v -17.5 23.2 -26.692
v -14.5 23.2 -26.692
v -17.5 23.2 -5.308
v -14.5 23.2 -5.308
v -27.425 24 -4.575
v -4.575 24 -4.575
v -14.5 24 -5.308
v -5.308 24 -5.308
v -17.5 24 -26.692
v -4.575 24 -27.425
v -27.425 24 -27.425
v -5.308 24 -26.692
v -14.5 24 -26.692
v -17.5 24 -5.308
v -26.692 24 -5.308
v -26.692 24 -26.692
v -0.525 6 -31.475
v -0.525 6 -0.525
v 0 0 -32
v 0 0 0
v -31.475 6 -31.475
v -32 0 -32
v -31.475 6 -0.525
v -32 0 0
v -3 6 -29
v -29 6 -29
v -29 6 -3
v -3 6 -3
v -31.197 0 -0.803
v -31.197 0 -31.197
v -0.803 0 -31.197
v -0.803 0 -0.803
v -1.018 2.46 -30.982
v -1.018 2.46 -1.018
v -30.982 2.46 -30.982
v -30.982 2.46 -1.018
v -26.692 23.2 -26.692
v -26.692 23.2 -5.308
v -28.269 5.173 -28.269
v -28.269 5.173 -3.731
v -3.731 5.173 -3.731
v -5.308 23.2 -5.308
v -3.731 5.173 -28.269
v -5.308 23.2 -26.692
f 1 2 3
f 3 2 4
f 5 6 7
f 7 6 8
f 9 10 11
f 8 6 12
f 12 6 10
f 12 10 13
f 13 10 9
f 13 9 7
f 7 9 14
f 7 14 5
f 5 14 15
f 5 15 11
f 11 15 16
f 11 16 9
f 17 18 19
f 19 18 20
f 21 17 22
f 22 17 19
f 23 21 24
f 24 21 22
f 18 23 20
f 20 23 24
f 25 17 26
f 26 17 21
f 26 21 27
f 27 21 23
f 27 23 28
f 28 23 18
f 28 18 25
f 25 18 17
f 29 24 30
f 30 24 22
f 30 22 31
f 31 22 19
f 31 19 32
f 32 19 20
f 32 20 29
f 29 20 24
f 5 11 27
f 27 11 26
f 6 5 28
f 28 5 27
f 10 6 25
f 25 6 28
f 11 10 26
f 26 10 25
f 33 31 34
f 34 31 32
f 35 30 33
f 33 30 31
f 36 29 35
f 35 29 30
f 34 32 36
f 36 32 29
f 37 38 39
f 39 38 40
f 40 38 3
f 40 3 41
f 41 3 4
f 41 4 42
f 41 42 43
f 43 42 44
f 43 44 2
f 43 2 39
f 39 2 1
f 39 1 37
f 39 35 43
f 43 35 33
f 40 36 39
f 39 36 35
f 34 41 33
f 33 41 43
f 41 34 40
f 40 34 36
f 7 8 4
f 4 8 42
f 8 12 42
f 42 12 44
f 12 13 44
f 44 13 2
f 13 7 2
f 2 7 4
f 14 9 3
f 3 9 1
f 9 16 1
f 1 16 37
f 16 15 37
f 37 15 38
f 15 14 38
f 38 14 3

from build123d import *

# Parameters (mm, degrees)
SKETCH1_W           = 32
SKETCH1_H           = 32
BOSS_EXTRUDE1_DEPTH = 6
BOSS_EXTRUDE1_TAPER = 5
SKETCH2_W           = 26
SKETCH2_H           = 26
BOSS_EXTRUDE2_DEPTH = 18
BOSS_EXTRUDE2_TAPER = 5
SHELL1_T            = -0.8
CHAMFER1_SIZE       = 2.5
CHAMFER1_SIZE_2     = 2.750157169
SKETCH3_W           = 9.192139117
SKETCH3_H           = 21.384278234
CUT_EXTRUDE1_DEPTH  = 51.855088412


with BuildPart() as part:
    # Sketch1 → Boss-Extrude1 (new body)
    with BuildSketch(Plane(origin=(0, 0, 0), x_dir=(1, 0, 0), z_dir=(0, 1, 0))):
        with Locations((-16, 16)):
            Rectangle(SKETCH1_W, SKETCH1_H)
    extrude(amount=BOSS_EXTRUDE1_DEPTH, taper=BOSS_EXTRUDE1_TAPER)

    # Sketch2 → Boss-Extrude2 (add)
    with BuildSketch(Plane(origin=(0, 6, 0), x_dir=(1, 0, 0), z_dir=(0, 1, 0))):
        with Locations((-16, 16)):
            Rectangle(SKETCH2_W, SKETCH2_H)
    extrude(amount=BOSS_EXTRUDE2_DEPTH, taper=BOSS_EXTRUDE2_TAPER)

    # Shell1
    shell1_openings = [part.faces().sort_by_distance(p)[0] for p in [
        (-16, 0, -16),
    ]]
    offset(amount=SHELL1_T, openings=shell1_openings, kind=Kind.INTERSECTION)

    # Chamfer1
    # the kernel refuses this chamfer: 2.750157169, 2.5 mm, written as the material it adds along each edge
    with BuildSketch(Plane(origin=(5.830274952, 5.2, -1.25799692), x_dir=(0, 0.030161850139926293, -0.9995450278982617), z_dir=(-1, 0, 0))) as chamfer1_piece_1_section:
        Polygon((CHAMFER1_SIZE * 0.999545027898, CHAMFER1_SIZE * 0.0301618501399), (-CHAMFER1_SIZE_2 * 0.117163164513, CHAMFER1_SIZE_2 * 0.993112678869), (0, 0), align=None)
    chamfer1_piece_1 = extrude(amount=43.660549905, mode=Mode.PRIVATE)
    chamfer1_piece_1 = split(chamfer1_piece_1, bisect_by=Plane(origin=(-1.2737044, 5.379537315, -3.779154262), z_dir=(-0.9961946980917455, -0.08715574274765792, 0)), keep=Keep.TOP, mode=Mode.PRIVATE)
    chamfer1_piece_1 = split(chamfer1_piece_1, bisect_by=Plane(origin=(-3.729971497, 5.164641789, -3.779154262), z_dir=(0.9961946980917455, 0.08715574274765821, 0)), keep=Keep.TOP, mode=Mode.PRIVATE)
    chamfer1_piece_1 = split(chamfer1_piece_1, bisect_by=Plane(origin=(-2.501837948, 5.275543614, -3.739674149), z_dir=(0, -0.08715574274765829, -0.9961946980917455)), keep=Keep.TOP, mode=Mode.PRIVATE)
    add(chamfer1_piece_1)
    with BuildSketch(Plane(origin=(5.830274952, 5.2, -1.25799692), x_dir=(0, 0.030161850139926293, -0.9995450278982617), z_dir=(-1, 0, 0))) as chamfer1_piece_2_section:
        Polygon((CHAMFER1_SIZE * 0.999545027898, CHAMFER1_SIZE * 0.0301618501399), (-CHAMFER1_SIZE_2 * 0.117163164513, CHAMFER1_SIZE_2 * 0.993112678869), (0, 0), align=None)
    chamfer1_piece_2 = extrude(amount=43.660549905, mode=Mode.PRIVATE)
    chamfer1_piece_2 = split(chamfer1_piece_2, bisect_by=Plane(origin=(-1.187972058, 4.399612159, -1.99521412), z_dir=(-0.9961946980917455, -0.08715574274765792, 0)), keep=Keep.TOP, mode=Mode.PRIVATE)
    chamfer1_piece_2 = split(chamfer1_piece_2, bisect_by=Plane(origin=(-3.644239154, 4.184716633, -1.99521412), z_dir=(0.9961946980917455, 0.08715574274765821, 0)), keep=Keep.TOP, mode=Mode.PRIVATE)
    chamfer1_piece_2 = split(chamfer1_piece_2, bisect_by=Plane(origin=(-2.416105606, 4.148173113, -3.641042011), z_dir=(0, 0.08715574274765829, 0.9961946980917455)), keep=Keep.TOP, mode=Mode.PRIVATE)
    add(chamfer1_piece_2)
    with BuildSketch(Plane(origin=(5.830274952, 5.2, -1.25799692), x_dir=(0, 0.030161850139926293, -0.9995450278982617), z_dir=(-1, 0, 0))) as chamfer1_piece_3_section:
        Polygon((CHAMFER1_SIZE * 0.999545027898, CHAMFER1_SIZE * 0.0301618501399), (-CHAMFER1_SIZE_2 * 0.117163164513, CHAMFER1_SIZE_2 * 0.993112678869), (0, 0), align=None)
    chamfer1_piece_3 = extrude(amount=43.660549905, mode=Mode.PRIVATE)
    chamfer1_piece_3 = split(chamfer1_piece_3, bisect_by=Plane(origin=(-3.747130429, 5.360769289, -1.993289961), z_dir=(-0.9961946980917455, -0.08715574274765821, 0)), keep=Keep.TOP, mode=Mode.PRIVATE)
    chamfer1_piece_3 = split(chamfer1_piece_3, bisect_by=Plane(origin=(-16, 4.144649452, -3.64073373), z_dir=(0, 0.08715574274765829, 0.9961946980917455)), keep=Keep.TOP, mode=Mode.PRIVATE)
    chamfer1_piece_3 = split(chamfer1_piece_3, bisect_by=Plane(origin=(-28.252869571, 5.360769289, -1.993289961), z_dir=(0.9961946980917455, -0.08715574274765829, 0)), keep=Keep.TOP, mode=Mode.PRIVATE)
    add(chamfer1_piece_3)
    with BuildSketch(Plane(origin=(5.830274952, 5.2, -1.25799692), x_dir=(0, 0.030161850139926293, -0.9995450278982617), z_dir=(-1, 0, 0))) as chamfer1_piece_4_section:
        Polygon((CHAMFER1_SIZE * 0.999545027898, CHAMFER1_SIZE * 0.0301618501399), (-CHAMFER1_SIZE_2 * 0.117163164513, CHAMFER1_SIZE_2 * 0.993112678869), (0, 0), align=None)
    chamfer1_piece_4 = extrude(amount=43.660549905, mode=Mode.PRIVATE)
    chamfer1_piece_4 = split(chamfer1_piece_4, bisect_by=Plane(origin=(-29.498162052, 5.275543614, -3.739674149), z_dir=(0, -0.08715574274765829, -0.9961946980917455)), keep=Keep.TOP, mode=Mode.PRIVATE)
    chamfer1_piece_4 = split(chamfer1_piece_4, bisect_by=Plane(origin=(-28.270028503, 5.164641789, -3.779154262), z_dir=(-0.9961946980917455, 0.08715574274765829, 0)), keep=Keep.TOP, mode=Mode.PRIVATE)
    chamfer1_piece_4 = split(chamfer1_piece_4, bisect_by=Plane(origin=(-30.7262956, 5.379537315, -3.779154262), z_dir=(0.9961946980917455, -0.08715574274765851, 0)), keep=Keep.TOP, mode=Mode.PRIVATE)
    add(chamfer1_piece_4)
    with BuildSketch(Plane(origin=(5.830274952, 5.2, -1.25799692), x_dir=(0, 0.030161850139926293, -0.9995450278982617), z_dir=(-1, 0, 0))) as chamfer1_piece_5_section:
        Polygon((CHAMFER1_SIZE * 0.999545027898, CHAMFER1_SIZE * 0.0301618501399), (-CHAMFER1_SIZE_2 * 0.117163164513, CHAMFER1_SIZE_2 * 0.993112678869), (0, 0), align=None)
    chamfer1_piece_5 = extrude(amount=43.660549905, mode=Mode.PRIVATE)
    chamfer1_piece_5 = split(chamfer1_piece_5, bisect_by=Plane(origin=(-29.583894394, 4.148173113, -3.641042011), z_dir=(0, 0.08715574274765829, 0.9961946980917455)), keep=Keep.TOP, mode=Mode.PRIVATE)
    chamfer1_piece_5 = split(chamfer1_piece_5, bisect_by=Plane(origin=(-28.355760846, 4.184716633, -1.99521412), z_dir=(-0.9961946980917455, 0.08715574274765829, 0)), keep=Keep.TOP, mode=Mode.PRIVATE)
    chamfer1_piece_5 = split(chamfer1_piece_5, bisect_by=Plane(origin=(-30.812027942, 4.399612159, -1.99521412), z_dir=(0.9961946980917455, -0.08715574274765851, 0)), keep=Keep.TOP, mode=Mode.PRIVATE)
    add(chamfer1_piece_5)
    with BuildSketch(Plane(origin=(-30.74200308, 5.2, 5.830274952), x_dir=(0.9995450278982617, 0.030161850139926356, 0), z_dir=(0, 0, -1))) as chamfer1_piece_6_section:
        Polygon((CHAMFER1_SIZE * 0.999545027898, CHAMFER1_SIZE * 0.0301618501399), (-CHAMFER1_SIZE_2 * 0.117163164513, CHAMFER1_SIZE_2 * 0.993112678869), (0, 0), align=None)
    chamfer1_piece_6 = extrude(amount=43.660549905, mode=Mode.PRIVATE)
    chamfer1_piece_6 = split(chamfer1_piece_6, bisect_by=Plane(origin=(-28.220845738, 5.164641789, -3.729971497), z_dir=(0, 0.08715574274765829, 0.9961946980917455)), keep=Keep.TOP, mode=Mode.PRIVATE)
    chamfer1_piece_6 = split(chamfer1_piece_6, bisect_by=Plane(origin=(-28.260325851, 5.275543614, -2.501837948), z_dir=(0.9961946980917455, -0.08715574274765829, 0)), keep=Keep.TOP, mode=Mode.PRIVATE)
    chamfer1_piece_6 = split(chamfer1_piece_6, bisect_by=Plane(origin=(-28.220845738, 5.379537315, -1.2737044), z_dir=(0, -0.08715574274765792, -0.9961946980917455)), keep=Keep.TOP, mode=Mode.PRIVATE)
    add(chamfer1_piece_6)
    with BuildSketch(Plane(origin=(-30.74200308, 5.2, 5.830274952), x_dir=(0.9995450278982617, 0.030161850139926356, 0), z_dir=(0, 0, -1))) as chamfer1_piece_7_section:
        Polygon((CHAMFER1_SIZE * 0.999545027898, CHAMFER1_SIZE * 0.0301618501399), (-CHAMFER1_SIZE_2 * 0.117163164513, CHAMFER1_SIZE_2 * 0.993112678869), (0, 0), align=None)
    chamfer1_piece_7 = extrude(amount=43.660549905, mode=Mode.PRIVATE)
    chamfer1_piece_7 = split(chamfer1_piece_7, bisect_by=Plane(origin=(-30.00478588, 4.184716633, -3.644239154), z_dir=(0, 0.08715574274765829, 0.9961946980917455)), keep=Keep.TOP, mode=Mode.PRIVATE)
    chamfer1_piece_7 = split(chamfer1_piece_7, bisect_by=Plane(origin=(-28.358957989, 4.148173113, -2.416105606), z_dir=(-0.9961946980917455, 0.08715574274765829, 0)), keep=Keep.TOP, mode=Mode.PRIVATE)
    chamfer1_piece_7 = split(chamfer1_piece_7, bisect_by=Plane(origin=(-30.00478588, 4.399612159, -1.187972058), z_dir=(0, -0.08715574274765792, -0.9961946980917455)), keep=Keep.TOP, mode=Mode.PRIVATE)
    add(chamfer1_piece_7)
    with BuildSketch(Plane(origin=(-30.74200308, 5.2, 5.830274952), x_dir=(0.9995450278982617, 0.030161850139926356, 0), z_dir=(0, 0, -1))) as chamfer1_piece_8_section:
        Polygon((CHAMFER1_SIZE * 0.999545027898, CHAMFER1_SIZE * 0.0301618501399), (-CHAMFER1_SIZE_2 * 0.117163164513, CHAMFER1_SIZE_2 * 0.993112678869), (0, 0), align=None)
    chamfer1_piece_8 = extrude(amount=43.660549905, mode=Mode.PRIVATE)
    chamfer1_piece_8 = split(chamfer1_piece_8, bisect_by=Plane(origin=(-30.006710039, 5.360769289, -28.252869571), z_dir=(0, -0.08715574274765829, 0.9961946980917455)), keep=Keep.TOP, mode=Mode.PRIVATE)
    chamfer1_piece_8 = split(chamfer1_piece_8, bisect_by=Plane(origin=(-30.006710039, 5.360769289, -3.747130429), z_dir=(0, -0.08715574274765829, -0.9961946980917455)), keep=Keep.TOP, mode=Mode.PRIVATE)
    chamfer1_piece_8 = split(chamfer1_piece_8, bisect_by=Plane(origin=(-28.35926627, 4.144649452, -16), z_dir=(-0.9961946980917455, 0.08715574274765829, 0)), keep=Keep.TOP, mode=Mode.PRIVATE)
    add(chamfer1_piece_8)
    with BuildSketch(Plane(origin=(-30.74200308, 5.2, 5.830274952), x_dir=(0.9995450278982617, 0.030161850139926356, 0), z_dir=(0, 0, -1))) as chamfer1_piece_9_section:
        Polygon((CHAMFER1_SIZE * 0.999545027898, CHAMFER1_SIZE * 0.0301618501399), (-CHAMFER1_SIZE_2 * 0.117163164513, CHAMFER1_SIZE_2 * 0.993112678869), (0, 0), align=None)
    chamfer1_piece_9 = extrude(amount=43.660549905, mode=Mode.PRIVATE)
    chamfer1_piece_9 = split(chamfer1_piece_9, bisect_by=Plane(origin=(-28.220845738, 5.379537315, -30.7262956), z_dir=(0, -0.08715574274765836, 0.9961946980917455)), keep=Keep.TOP, mode=Mode.PRIVATE)
    chamfer1_piece_9 = split(chamfer1_piece_9, bisect_by=Plane(origin=(-28.220845738, 5.164641789, -28.270028503), z_dir=(0, 0.08715574274765829, -0.9961946980917455)), keep=Keep.TOP, mode=Mode.PRIVATE)
    chamfer1_piece_9 = split(chamfer1_piece_9, bisect_by=Plane(origin=(-28.260325851, 5.275543614, -29.498162052), z_dir=(0.9961946980917455, -0.08715574274765829, 0)), keep=Keep.TOP, mode=Mode.PRIVATE)
    add(chamfer1_piece_9)
    with BuildSketch(Plane(origin=(-30.74200308, 5.2, 5.830274952), x_dir=(0.9995450278982617, 0.030161850139926356, 0), z_dir=(0, 0, -1))) as chamfer1_piece_10_section:
        Polygon((CHAMFER1_SIZE * 0.999545027898, CHAMFER1_SIZE * 0.0301618501399), (-CHAMFER1_SIZE_2 * 0.117163164513, CHAMFER1_SIZE_2 * 0.993112678869), (0, 0), align=None)
    chamfer1_piece_10 = extrude(amount=43.660549905, mode=Mode.PRIVATE)
    chamfer1_piece_10 = split(chamfer1_piece_10, bisect_by=Plane(origin=(-30.00478588, 4.399612159, -30.812027942), z_dir=(0, -0.08715574274765836, 0.9961946980917455)), keep=Keep.TOP, mode=Mode.PRIVATE)
    chamfer1_piece_10 = split(chamfer1_piece_10, bisect_by=Plane(origin=(-30.00478588, 4.184716633, -28.355760846), z_dir=(0, 0.08715574274765829, -0.9961946980917455)), keep=Keep.TOP, mode=Mode.PRIVATE)
    chamfer1_piece_10 = split(chamfer1_piece_10, bisect_by=Plane(origin=(-28.358957989, 4.148173113, -29.583894394), z_dir=(-0.9961946980917455, 0.08715574274765829, 0)), keep=Keep.TOP, mode=Mode.PRIVATE)
    add(chamfer1_piece_10)
    with BuildSketch(Plane(origin=(5.830274952, 5.2, -30.74200308), x_dir=(0, -0.9937112432628153, -0.11197305485280758), z_dir=(-1, 0, 0))) as chamfer1_piece_11_section:
        Polygon((CHAMFER1_SIZE_2 * 0.99968896676, CHAMFER1_SIZE_2 * 0.0249393220908), (-CHAMFER1_SIZE * 0.111973054853, CHAMFER1_SIZE * 0.993711243263), (0, 0), align=None)
    chamfer1_piece_11 = extrude(amount=43.660549905, mode=Mode.PRIVATE)
    chamfer1_piece_11 = split(chamfer1_piece_11, bisect_by=Plane(origin=(-1.187972058, 4.399612159, -30.00478588), z_dir=(-0.9961946980917455, -0.08715574274765792, 0)), keep=Keep.TOP, mode=Mode.PRIVATE)
    chamfer1_piece_11 = split(chamfer1_piece_11, bisect_by=Plane(origin=(-2.416105606, 4.148173113, -28.358957989), z_dir=(0, 0.08715574274765829, -0.9961946980917455)), keep=Keep.TOP, mode=Mode.PRIVATE)
    chamfer1_piece_11 = split(chamfer1_piece_11, bisect_by=Plane(origin=(-3.644239154, 4.184716633, -30.00478588), z_dir=(0.9961946980917455, 0.08715574274765821, 0)), keep=Keep.TOP, mode=Mode.PRIVATE)
    add(chamfer1_piece_11)
    with BuildSketch(Plane(origin=(5.830274952, 5.2, -30.74200308), x_dir=(0, -0.9937112432628153, -0.11197305485280758), z_dir=(-1, 0, 0))) as chamfer1_piece_12_section:
        Polygon((CHAMFER1_SIZE_2 * 0.99968896676, CHAMFER1_SIZE_2 * 0.0249393220908), (-CHAMFER1_SIZE * 0.111973054853, CHAMFER1_SIZE * 0.993711243263), (0, 0), align=None)
    chamfer1_piece_12 = extrude(amount=43.660549905, mode=Mode.PRIVATE)
    chamfer1_piece_12 = split(chamfer1_piece_12, bisect_by=Plane(origin=(-1.2737044, 5.379537315, -28.220845738), z_dir=(-0.9961946980917455, -0.08715574274765792, 0)), keep=Keep.TOP, mode=Mode.PRIVATE)
    chamfer1_piece_12 = split(chamfer1_piece_12, bisect_by=Plane(origin=(-2.501837948, 5.275543614, -28.260325851), z_dir=(0, -0.08715574274765829, 0.9961946980917455)), keep=Keep.TOP, mode=Mode.PRIVATE)
    chamfer1_piece_12 = split(chamfer1_piece_12, bisect_by=Plane(origin=(-3.729971497, 5.164641789, -28.220845738), z_dir=(0.9961946980917455, 0.08715574274765821, 0)), keep=Keep.TOP, mode=Mode.PRIVATE)
    add(chamfer1_piece_12)
    with BuildSketch(Plane(origin=(5.830274952, 5.2, -30.74200308), x_dir=(0, -0.9937112432628153, -0.11197305485280758), z_dir=(-1, 0, 0))) as chamfer1_piece_13_section:
        Polygon((CHAMFER1_SIZE_2 * 0.99968896676, CHAMFER1_SIZE_2 * 0.0249393220908), (-CHAMFER1_SIZE * 0.111973054853, CHAMFER1_SIZE * 0.993711243263), (0, 0), align=None)
    chamfer1_piece_13 = extrude(amount=43.660549905, mode=Mode.PRIVATE)
    chamfer1_piece_13 = split(chamfer1_piece_13, bisect_by=Plane(origin=(-16, 4.144649452, -28.35926627), z_dir=(0, 0.08715574274765829, -0.9961946980917455)), keep=Keep.TOP, mode=Mode.PRIVATE)
    chamfer1_piece_13 = split(chamfer1_piece_13, bisect_by=Plane(origin=(-3.747130429, 5.360769289, -30.006710039), z_dir=(-0.9961946980917455, -0.08715574274765821, 0)), keep=Keep.TOP, mode=Mode.PRIVATE)
    chamfer1_piece_13 = split(chamfer1_piece_13, bisect_by=Plane(origin=(-28.252869571, 5.360769289, -30.006710039), z_dir=(0.9961946980917455, -0.08715574274765829, 0)), keep=Keep.TOP, mode=Mode.PRIVATE)
    add(chamfer1_piece_13)
    with BuildSketch(Plane(origin=(5.830274952, 5.2, -30.74200308), x_dir=(0, -0.9937112432628153, -0.11197305485280758), z_dir=(-1, 0, 0))) as chamfer1_piece_14_section:
        Polygon((CHAMFER1_SIZE_2 * 0.99968896676, CHAMFER1_SIZE_2 * 0.0249393220908), (-CHAMFER1_SIZE * 0.111973054853, CHAMFER1_SIZE * 0.993711243263), (0, 0), align=None)
    chamfer1_piece_14 = extrude(amount=43.660549905, mode=Mode.PRIVATE)
    chamfer1_piece_14 = split(chamfer1_piece_14, bisect_by=Plane(origin=(-30.812027942, 4.399612159, -30.00478588), z_dir=(0.9961946980917455, -0.08715574274765851, 0)), keep=Keep.TOP, mode=Mode.PRIVATE)
    chamfer1_piece_14 = split(chamfer1_piece_14, bisect_by=Plane(origin=(-29.583894394, 4.148173113, -28.358957989), z_dir=(0, 0.08715574274765829, -0.9961946980917455)), keep=Keep.TOP, mode=Mode.PRIVATE)
    chamfer1_piece_14 = split(chamfer1_piece_14, bisect_by=Plane(origin=(-28.355760846, 4.184716633, -30.00478588), z_dir=(-0.9961946980917455, 0.08715574274765829, 0)), keep=Keep.TOP, mode=Mode.PRIVATE)
    add(chamfer1_piece_14)
    with BuildSketch(Plane(origin=(5.830274952, 5.2, -30.74200308), x_dir=(0, -0.9937112432628153, -0.11197305485280758), z_dir=(-1, 0, 0))) as chamfer1_piece_15_section:
        Polygon((CHAMFER1_SIZE_2 * 0.99968896676, CHAMFER1_SIZE_2 * 0.0249393220908), (-CHAMFER1_SIZE * 0.111973054853, CHAMFER1_SIZE * 0.993711243263), (0, 0), align=None)
    chamfer1_piece_15 = extrude(amount=43.660549905, mode=Mode.PRIVATE)
    chamfer1_piece_15 = split(chamfer1_piece_15, bisect_by=Plane(origin=(-30.7262956, 5.379537315, -28.220845738), z_dir=(0.9961946980917455, -0.08715574274765851, 0)), keep=Keep.TOP, mode=Mode.PRIVATE)
    chamfer1_piece_15 = split(chamfer1_piece_15, bisect_by=Plane(origin=(-29.498162052, 5.275543614, -28.260325851), z_dir=(0, -0.08715574274765829, 0.9961946980917455)), keep=Keep.TOP, mode=Mode.PRIVATE)
    chamfer1_piece_15 = split(chamfer1_piece_15, bisect_by=Plane(origin=(-28.270028503, 5.164641789, -28.220845738), z_dir=(-0.9961946980917455, 0.08715574274765829, 0)), keep=Keep.TOP, mode=Mode.PRIVATE)
    add(chamfer1_piece_15)
    with BuildSketch(Plane(origin=(-1.25799692, 5.2, 5.830274952), x_dir=(0.11197305485280797, -0.9937112432628151, 0), z_dir=(0, 0, -1))) as chamfer1_piece_16_section:
        Polygon((CHAMFER1_SIZE_2 * 0.99968896676, CHAMFER1_SIZE_2 * 0.0249393220908), (-CHAMFER1_SIZE * 0.111973054853, CHAMFER1_SIZE * 0.993711243263), (0, 0), align=None)
    chamfer1_piece_16 = extrude(amount=43.660549905, mode=Mode.PRIVATE)
    chamfer1_piece_16 = split(chamfer1_piece_16, bisect_by=Plane(origin=(-1.99521412, 4.399612159, -1.187972058), z_dir=(0, -0.08715574274765792, -0.9961946980917455)), keep=Keep.TOP, mode=Mode.PRIVATE)
    chamfer1_piece_16 = split(chamfer1_piece_16, bisect_by=Plane(origin=(-3.641042011, 4.148173113, -2.416105606), z_dir=(0.9961946980917455, 0.08715574274765821, 0)), keep=Keep.TOP, mode=Mode.PRIVATE)
    chamfer1_piece_16 = split(chamfer1_piece_16, bisect_by=Plane(origin=(-1.99521412, 4.184716633, -3.644239154), z_dir=(0, 0.08715574274765829, 0.9961946980917455)), keep=Keep.TOP, mode=Mode.PRIVATE)
    add(chamfer1_piece_16)
    with BuildSketch(Plane(origin=(-1.25799692, 5.2, 5.830274952), x_dir=(0.11197305485280797, -0.9937112432628151, 0), z_dir=(0, 0, -1))) as chamfer1_piece_17_section:
        Polygon((CHAMFER1_SIZE_2 * 0.99968896676, CHAMFER1_SIZE_2 * 0.0249393220908), (-CHAMFER1_SIZE * 0.111973054853, CHAMFER1_SIZE * 0.993711243263), (0, 0), align=None)
    chamfer1_piece_17 = extrude(amount=43.660549905, mode=Mode.PRIVATE)
    chamfer1_piece_17 = split(chamfer1_piece_17, bisect_by=Plane(origin=(-3.779154262, 5.379537315, -1.2737044), z_dir=(0, -0.08715574274765792, -0.9961946980917455)), keep=Keep.TOP, mode=Mode.PRIVATE)
    chamfer1_piece_17 = split(chamfer1_piece_17, bisect_by=Plane(origin=(-3.739674149, 5.275543614, -2.501837948), z_dir=(-0.9961946980917455, -0.08715574274765821, 0)), keep=Keep.TOP, mode=Mode.PRIVATE)
    chamfer1_piece_17 = split(chamfer1_piece_17, bisect_by=Plane(origin=(-3.779154262, 5.164641789, -3.729971497), z_dir=(0, 0.08715574274765829, 0.9961946980917455)), keep=Keep.TOP, mode=Mode.PRIVATE)
    add(chamfer1_piece_17)
    with BuildSketch(Plane(origin=(-1.25799692, 5.2, 5.830274952), x_dir=(0.11197305485280797, -0.9937112432628151, 0), z_dir=(0, 0, -1))) as chamfer1_piece_18_section:
        Polygon((CHAMFER1_SIZE_2 * 0.99968896676, CHAMFER1_SIZE_2 * 0.0249393220908), (-CHAMFER1_SIZE * 0.111973054853, CHAMFER1_SIZE * 0.993711243263), (0, 0), align=None)
    chamfer1_piece_18 = extrude(amount=43.660549905, mode=Mode.PRIVATE)
    chamfer1_piece_18 = split(chamfer1_piece_18, bisect_by=Plane(origin=(-1.993289961, 5.360769289, -28.252869571), z_dir=(0, -0.08715574274765829, 0.9961946980917455)), keep=Keep.TOP, mode=Mode.PRIVATE)
    chamfer1_piece_18 = split(chamfer1_piece_18, bisect_by=Plane(origin=(-3.64073373, 4.144649452, -16), z_dir=(0.9961946980917455, 0.08715574274765821, 0)), keep=Keep.TOP, mode=Mode.PRIVATE)
    chamfer1_piece_18 = split(chamfer1_piece_18, bisect_by=Plane(origin=(-1.993289961, 5.360769289, -3.747130429), z_dir=(0, -0.08715574274765829, -0.9961946980917455)), keep=Keep.TOP, mode=Mode.PRIVATE)
    add(chamfer1_piece_18)
    with BuildSketch(Plane(origin=(-1.25799692, 5.2, 5.830274952), x_dir=(0.11197305485280797, -0.9937112432628151, 0), z_dir=(0, 0, -1))) as chamfer1_piece_19_section:
        Polygon((CHAMFER1_SIZE_2 * 0.99968896676, CHAMFER1_SIZE_2 * 0.0249393220908), (-CHAMFER1_SIZE * 0.111973054853, CHAMFER1_SIZE * 0.993711243263), (0, 0), align=None)
    chamfer1_piece_19 = extrude(amount=43.660549905, mode=Mode.PRIVATE)
    chamfer1_piece_19 = split(chamfer1_piece_19, bisect_by=Plane(origin=(-1.99521412, 4.399612159, -30.812027942), z_dir=(0, -0.08715574274765836, 0.9961946980917455)), keep=Keep.TOP, mode=Mode.PRIVATE)
    chamfer1_piece_19 = split(chamfer1_piece_19, bisect_by=Plane(origin=(-1.99521412, 4.184716633, -28.355760846), z_dir=(0, 0.08715574274765829, -0.9961946980917455)), keep=Keep.TOP, mode=Mode.PRIVATE)
    chamfer1_piece_19 = split(chamfer1_piece_19, bisect_by=Plane(origin=(-3.641042011, 4.148173113, -29.583894394), z_dir=(0.9961946980917455, 0.08715574274765821, 0)), keep=Keep.TOP, mode=Mode.PRIVATE)
    add(chamfer1_piece_19)
    with BuildSketch(Plane(origin=(-1.25799692, 5.2, 5.830274952), x_dir=(0.11197305485280797, -0.9937112432628151, 0), z_dir=(0, 0, -1))) as chamfer1_piece_20_section:
        Polygon((CHAMFER1_SIZE_2 * 0.99968896676, CHAMFER1_SIZE_2 * 0.0249393220908), (-CHAMFER1_SIZE * 0.111973054853, CHAMFER1_SIZE * 0.993711243263), (0, 0), align=None)
    chamfer1_piece_20 = extrude(amount=43.660549905, mode=Mode.PRIVATE)
    chamfer1_piece_20 = split(chamfer1_piece_20, bisect_by=Plane(origin=(-3.779154262, 5.379537315, -30.7262956), z_dir=(0, -0.08715574274765836, 0.9961946980917455)), keep=Keep.TOP, mode=Mode.PRIVATE)
    chamfer1_piece_20 = split(chamfer1_piece_20, bisect_by=Plane(origin=(-3.779154262, 5.164641789, -28.270028503), z_dir=(0, 0.08715574274765829, -0.9961946980917455)), keep=Keep.TOP, mode=Mode.PRIVATE)
    chamfer1_piece_20 = split(chamfer1_piece_20, bisect_by=Plane(origin=(-3.739674149, 5.275543614, -29.498162052), z_dir=(-0.9961946980917455, -0.08715574274765821, 0)), keep=Keep.TOP, mode=Mode.PRIVATE)
    add(chamfer1_piece_20)

    # Sketch3 → Cut-Extrude1 (cut, through all)
    with BuildSketch(Plane.XZ.offset(-23.2)):
        with Locations((-22.096069558, -16)):
            Rectangle(SKETCH3_W, SKETCH3_H)
        with Locations((-9.903930442, -16)):
            Rectangle(SKETCH3_W, SKETCH3_H)
    extrude(amount=-CUT_EXTRUDE1_DEPTH, mode=Mode.SUBTRACT)


solid = part.part
